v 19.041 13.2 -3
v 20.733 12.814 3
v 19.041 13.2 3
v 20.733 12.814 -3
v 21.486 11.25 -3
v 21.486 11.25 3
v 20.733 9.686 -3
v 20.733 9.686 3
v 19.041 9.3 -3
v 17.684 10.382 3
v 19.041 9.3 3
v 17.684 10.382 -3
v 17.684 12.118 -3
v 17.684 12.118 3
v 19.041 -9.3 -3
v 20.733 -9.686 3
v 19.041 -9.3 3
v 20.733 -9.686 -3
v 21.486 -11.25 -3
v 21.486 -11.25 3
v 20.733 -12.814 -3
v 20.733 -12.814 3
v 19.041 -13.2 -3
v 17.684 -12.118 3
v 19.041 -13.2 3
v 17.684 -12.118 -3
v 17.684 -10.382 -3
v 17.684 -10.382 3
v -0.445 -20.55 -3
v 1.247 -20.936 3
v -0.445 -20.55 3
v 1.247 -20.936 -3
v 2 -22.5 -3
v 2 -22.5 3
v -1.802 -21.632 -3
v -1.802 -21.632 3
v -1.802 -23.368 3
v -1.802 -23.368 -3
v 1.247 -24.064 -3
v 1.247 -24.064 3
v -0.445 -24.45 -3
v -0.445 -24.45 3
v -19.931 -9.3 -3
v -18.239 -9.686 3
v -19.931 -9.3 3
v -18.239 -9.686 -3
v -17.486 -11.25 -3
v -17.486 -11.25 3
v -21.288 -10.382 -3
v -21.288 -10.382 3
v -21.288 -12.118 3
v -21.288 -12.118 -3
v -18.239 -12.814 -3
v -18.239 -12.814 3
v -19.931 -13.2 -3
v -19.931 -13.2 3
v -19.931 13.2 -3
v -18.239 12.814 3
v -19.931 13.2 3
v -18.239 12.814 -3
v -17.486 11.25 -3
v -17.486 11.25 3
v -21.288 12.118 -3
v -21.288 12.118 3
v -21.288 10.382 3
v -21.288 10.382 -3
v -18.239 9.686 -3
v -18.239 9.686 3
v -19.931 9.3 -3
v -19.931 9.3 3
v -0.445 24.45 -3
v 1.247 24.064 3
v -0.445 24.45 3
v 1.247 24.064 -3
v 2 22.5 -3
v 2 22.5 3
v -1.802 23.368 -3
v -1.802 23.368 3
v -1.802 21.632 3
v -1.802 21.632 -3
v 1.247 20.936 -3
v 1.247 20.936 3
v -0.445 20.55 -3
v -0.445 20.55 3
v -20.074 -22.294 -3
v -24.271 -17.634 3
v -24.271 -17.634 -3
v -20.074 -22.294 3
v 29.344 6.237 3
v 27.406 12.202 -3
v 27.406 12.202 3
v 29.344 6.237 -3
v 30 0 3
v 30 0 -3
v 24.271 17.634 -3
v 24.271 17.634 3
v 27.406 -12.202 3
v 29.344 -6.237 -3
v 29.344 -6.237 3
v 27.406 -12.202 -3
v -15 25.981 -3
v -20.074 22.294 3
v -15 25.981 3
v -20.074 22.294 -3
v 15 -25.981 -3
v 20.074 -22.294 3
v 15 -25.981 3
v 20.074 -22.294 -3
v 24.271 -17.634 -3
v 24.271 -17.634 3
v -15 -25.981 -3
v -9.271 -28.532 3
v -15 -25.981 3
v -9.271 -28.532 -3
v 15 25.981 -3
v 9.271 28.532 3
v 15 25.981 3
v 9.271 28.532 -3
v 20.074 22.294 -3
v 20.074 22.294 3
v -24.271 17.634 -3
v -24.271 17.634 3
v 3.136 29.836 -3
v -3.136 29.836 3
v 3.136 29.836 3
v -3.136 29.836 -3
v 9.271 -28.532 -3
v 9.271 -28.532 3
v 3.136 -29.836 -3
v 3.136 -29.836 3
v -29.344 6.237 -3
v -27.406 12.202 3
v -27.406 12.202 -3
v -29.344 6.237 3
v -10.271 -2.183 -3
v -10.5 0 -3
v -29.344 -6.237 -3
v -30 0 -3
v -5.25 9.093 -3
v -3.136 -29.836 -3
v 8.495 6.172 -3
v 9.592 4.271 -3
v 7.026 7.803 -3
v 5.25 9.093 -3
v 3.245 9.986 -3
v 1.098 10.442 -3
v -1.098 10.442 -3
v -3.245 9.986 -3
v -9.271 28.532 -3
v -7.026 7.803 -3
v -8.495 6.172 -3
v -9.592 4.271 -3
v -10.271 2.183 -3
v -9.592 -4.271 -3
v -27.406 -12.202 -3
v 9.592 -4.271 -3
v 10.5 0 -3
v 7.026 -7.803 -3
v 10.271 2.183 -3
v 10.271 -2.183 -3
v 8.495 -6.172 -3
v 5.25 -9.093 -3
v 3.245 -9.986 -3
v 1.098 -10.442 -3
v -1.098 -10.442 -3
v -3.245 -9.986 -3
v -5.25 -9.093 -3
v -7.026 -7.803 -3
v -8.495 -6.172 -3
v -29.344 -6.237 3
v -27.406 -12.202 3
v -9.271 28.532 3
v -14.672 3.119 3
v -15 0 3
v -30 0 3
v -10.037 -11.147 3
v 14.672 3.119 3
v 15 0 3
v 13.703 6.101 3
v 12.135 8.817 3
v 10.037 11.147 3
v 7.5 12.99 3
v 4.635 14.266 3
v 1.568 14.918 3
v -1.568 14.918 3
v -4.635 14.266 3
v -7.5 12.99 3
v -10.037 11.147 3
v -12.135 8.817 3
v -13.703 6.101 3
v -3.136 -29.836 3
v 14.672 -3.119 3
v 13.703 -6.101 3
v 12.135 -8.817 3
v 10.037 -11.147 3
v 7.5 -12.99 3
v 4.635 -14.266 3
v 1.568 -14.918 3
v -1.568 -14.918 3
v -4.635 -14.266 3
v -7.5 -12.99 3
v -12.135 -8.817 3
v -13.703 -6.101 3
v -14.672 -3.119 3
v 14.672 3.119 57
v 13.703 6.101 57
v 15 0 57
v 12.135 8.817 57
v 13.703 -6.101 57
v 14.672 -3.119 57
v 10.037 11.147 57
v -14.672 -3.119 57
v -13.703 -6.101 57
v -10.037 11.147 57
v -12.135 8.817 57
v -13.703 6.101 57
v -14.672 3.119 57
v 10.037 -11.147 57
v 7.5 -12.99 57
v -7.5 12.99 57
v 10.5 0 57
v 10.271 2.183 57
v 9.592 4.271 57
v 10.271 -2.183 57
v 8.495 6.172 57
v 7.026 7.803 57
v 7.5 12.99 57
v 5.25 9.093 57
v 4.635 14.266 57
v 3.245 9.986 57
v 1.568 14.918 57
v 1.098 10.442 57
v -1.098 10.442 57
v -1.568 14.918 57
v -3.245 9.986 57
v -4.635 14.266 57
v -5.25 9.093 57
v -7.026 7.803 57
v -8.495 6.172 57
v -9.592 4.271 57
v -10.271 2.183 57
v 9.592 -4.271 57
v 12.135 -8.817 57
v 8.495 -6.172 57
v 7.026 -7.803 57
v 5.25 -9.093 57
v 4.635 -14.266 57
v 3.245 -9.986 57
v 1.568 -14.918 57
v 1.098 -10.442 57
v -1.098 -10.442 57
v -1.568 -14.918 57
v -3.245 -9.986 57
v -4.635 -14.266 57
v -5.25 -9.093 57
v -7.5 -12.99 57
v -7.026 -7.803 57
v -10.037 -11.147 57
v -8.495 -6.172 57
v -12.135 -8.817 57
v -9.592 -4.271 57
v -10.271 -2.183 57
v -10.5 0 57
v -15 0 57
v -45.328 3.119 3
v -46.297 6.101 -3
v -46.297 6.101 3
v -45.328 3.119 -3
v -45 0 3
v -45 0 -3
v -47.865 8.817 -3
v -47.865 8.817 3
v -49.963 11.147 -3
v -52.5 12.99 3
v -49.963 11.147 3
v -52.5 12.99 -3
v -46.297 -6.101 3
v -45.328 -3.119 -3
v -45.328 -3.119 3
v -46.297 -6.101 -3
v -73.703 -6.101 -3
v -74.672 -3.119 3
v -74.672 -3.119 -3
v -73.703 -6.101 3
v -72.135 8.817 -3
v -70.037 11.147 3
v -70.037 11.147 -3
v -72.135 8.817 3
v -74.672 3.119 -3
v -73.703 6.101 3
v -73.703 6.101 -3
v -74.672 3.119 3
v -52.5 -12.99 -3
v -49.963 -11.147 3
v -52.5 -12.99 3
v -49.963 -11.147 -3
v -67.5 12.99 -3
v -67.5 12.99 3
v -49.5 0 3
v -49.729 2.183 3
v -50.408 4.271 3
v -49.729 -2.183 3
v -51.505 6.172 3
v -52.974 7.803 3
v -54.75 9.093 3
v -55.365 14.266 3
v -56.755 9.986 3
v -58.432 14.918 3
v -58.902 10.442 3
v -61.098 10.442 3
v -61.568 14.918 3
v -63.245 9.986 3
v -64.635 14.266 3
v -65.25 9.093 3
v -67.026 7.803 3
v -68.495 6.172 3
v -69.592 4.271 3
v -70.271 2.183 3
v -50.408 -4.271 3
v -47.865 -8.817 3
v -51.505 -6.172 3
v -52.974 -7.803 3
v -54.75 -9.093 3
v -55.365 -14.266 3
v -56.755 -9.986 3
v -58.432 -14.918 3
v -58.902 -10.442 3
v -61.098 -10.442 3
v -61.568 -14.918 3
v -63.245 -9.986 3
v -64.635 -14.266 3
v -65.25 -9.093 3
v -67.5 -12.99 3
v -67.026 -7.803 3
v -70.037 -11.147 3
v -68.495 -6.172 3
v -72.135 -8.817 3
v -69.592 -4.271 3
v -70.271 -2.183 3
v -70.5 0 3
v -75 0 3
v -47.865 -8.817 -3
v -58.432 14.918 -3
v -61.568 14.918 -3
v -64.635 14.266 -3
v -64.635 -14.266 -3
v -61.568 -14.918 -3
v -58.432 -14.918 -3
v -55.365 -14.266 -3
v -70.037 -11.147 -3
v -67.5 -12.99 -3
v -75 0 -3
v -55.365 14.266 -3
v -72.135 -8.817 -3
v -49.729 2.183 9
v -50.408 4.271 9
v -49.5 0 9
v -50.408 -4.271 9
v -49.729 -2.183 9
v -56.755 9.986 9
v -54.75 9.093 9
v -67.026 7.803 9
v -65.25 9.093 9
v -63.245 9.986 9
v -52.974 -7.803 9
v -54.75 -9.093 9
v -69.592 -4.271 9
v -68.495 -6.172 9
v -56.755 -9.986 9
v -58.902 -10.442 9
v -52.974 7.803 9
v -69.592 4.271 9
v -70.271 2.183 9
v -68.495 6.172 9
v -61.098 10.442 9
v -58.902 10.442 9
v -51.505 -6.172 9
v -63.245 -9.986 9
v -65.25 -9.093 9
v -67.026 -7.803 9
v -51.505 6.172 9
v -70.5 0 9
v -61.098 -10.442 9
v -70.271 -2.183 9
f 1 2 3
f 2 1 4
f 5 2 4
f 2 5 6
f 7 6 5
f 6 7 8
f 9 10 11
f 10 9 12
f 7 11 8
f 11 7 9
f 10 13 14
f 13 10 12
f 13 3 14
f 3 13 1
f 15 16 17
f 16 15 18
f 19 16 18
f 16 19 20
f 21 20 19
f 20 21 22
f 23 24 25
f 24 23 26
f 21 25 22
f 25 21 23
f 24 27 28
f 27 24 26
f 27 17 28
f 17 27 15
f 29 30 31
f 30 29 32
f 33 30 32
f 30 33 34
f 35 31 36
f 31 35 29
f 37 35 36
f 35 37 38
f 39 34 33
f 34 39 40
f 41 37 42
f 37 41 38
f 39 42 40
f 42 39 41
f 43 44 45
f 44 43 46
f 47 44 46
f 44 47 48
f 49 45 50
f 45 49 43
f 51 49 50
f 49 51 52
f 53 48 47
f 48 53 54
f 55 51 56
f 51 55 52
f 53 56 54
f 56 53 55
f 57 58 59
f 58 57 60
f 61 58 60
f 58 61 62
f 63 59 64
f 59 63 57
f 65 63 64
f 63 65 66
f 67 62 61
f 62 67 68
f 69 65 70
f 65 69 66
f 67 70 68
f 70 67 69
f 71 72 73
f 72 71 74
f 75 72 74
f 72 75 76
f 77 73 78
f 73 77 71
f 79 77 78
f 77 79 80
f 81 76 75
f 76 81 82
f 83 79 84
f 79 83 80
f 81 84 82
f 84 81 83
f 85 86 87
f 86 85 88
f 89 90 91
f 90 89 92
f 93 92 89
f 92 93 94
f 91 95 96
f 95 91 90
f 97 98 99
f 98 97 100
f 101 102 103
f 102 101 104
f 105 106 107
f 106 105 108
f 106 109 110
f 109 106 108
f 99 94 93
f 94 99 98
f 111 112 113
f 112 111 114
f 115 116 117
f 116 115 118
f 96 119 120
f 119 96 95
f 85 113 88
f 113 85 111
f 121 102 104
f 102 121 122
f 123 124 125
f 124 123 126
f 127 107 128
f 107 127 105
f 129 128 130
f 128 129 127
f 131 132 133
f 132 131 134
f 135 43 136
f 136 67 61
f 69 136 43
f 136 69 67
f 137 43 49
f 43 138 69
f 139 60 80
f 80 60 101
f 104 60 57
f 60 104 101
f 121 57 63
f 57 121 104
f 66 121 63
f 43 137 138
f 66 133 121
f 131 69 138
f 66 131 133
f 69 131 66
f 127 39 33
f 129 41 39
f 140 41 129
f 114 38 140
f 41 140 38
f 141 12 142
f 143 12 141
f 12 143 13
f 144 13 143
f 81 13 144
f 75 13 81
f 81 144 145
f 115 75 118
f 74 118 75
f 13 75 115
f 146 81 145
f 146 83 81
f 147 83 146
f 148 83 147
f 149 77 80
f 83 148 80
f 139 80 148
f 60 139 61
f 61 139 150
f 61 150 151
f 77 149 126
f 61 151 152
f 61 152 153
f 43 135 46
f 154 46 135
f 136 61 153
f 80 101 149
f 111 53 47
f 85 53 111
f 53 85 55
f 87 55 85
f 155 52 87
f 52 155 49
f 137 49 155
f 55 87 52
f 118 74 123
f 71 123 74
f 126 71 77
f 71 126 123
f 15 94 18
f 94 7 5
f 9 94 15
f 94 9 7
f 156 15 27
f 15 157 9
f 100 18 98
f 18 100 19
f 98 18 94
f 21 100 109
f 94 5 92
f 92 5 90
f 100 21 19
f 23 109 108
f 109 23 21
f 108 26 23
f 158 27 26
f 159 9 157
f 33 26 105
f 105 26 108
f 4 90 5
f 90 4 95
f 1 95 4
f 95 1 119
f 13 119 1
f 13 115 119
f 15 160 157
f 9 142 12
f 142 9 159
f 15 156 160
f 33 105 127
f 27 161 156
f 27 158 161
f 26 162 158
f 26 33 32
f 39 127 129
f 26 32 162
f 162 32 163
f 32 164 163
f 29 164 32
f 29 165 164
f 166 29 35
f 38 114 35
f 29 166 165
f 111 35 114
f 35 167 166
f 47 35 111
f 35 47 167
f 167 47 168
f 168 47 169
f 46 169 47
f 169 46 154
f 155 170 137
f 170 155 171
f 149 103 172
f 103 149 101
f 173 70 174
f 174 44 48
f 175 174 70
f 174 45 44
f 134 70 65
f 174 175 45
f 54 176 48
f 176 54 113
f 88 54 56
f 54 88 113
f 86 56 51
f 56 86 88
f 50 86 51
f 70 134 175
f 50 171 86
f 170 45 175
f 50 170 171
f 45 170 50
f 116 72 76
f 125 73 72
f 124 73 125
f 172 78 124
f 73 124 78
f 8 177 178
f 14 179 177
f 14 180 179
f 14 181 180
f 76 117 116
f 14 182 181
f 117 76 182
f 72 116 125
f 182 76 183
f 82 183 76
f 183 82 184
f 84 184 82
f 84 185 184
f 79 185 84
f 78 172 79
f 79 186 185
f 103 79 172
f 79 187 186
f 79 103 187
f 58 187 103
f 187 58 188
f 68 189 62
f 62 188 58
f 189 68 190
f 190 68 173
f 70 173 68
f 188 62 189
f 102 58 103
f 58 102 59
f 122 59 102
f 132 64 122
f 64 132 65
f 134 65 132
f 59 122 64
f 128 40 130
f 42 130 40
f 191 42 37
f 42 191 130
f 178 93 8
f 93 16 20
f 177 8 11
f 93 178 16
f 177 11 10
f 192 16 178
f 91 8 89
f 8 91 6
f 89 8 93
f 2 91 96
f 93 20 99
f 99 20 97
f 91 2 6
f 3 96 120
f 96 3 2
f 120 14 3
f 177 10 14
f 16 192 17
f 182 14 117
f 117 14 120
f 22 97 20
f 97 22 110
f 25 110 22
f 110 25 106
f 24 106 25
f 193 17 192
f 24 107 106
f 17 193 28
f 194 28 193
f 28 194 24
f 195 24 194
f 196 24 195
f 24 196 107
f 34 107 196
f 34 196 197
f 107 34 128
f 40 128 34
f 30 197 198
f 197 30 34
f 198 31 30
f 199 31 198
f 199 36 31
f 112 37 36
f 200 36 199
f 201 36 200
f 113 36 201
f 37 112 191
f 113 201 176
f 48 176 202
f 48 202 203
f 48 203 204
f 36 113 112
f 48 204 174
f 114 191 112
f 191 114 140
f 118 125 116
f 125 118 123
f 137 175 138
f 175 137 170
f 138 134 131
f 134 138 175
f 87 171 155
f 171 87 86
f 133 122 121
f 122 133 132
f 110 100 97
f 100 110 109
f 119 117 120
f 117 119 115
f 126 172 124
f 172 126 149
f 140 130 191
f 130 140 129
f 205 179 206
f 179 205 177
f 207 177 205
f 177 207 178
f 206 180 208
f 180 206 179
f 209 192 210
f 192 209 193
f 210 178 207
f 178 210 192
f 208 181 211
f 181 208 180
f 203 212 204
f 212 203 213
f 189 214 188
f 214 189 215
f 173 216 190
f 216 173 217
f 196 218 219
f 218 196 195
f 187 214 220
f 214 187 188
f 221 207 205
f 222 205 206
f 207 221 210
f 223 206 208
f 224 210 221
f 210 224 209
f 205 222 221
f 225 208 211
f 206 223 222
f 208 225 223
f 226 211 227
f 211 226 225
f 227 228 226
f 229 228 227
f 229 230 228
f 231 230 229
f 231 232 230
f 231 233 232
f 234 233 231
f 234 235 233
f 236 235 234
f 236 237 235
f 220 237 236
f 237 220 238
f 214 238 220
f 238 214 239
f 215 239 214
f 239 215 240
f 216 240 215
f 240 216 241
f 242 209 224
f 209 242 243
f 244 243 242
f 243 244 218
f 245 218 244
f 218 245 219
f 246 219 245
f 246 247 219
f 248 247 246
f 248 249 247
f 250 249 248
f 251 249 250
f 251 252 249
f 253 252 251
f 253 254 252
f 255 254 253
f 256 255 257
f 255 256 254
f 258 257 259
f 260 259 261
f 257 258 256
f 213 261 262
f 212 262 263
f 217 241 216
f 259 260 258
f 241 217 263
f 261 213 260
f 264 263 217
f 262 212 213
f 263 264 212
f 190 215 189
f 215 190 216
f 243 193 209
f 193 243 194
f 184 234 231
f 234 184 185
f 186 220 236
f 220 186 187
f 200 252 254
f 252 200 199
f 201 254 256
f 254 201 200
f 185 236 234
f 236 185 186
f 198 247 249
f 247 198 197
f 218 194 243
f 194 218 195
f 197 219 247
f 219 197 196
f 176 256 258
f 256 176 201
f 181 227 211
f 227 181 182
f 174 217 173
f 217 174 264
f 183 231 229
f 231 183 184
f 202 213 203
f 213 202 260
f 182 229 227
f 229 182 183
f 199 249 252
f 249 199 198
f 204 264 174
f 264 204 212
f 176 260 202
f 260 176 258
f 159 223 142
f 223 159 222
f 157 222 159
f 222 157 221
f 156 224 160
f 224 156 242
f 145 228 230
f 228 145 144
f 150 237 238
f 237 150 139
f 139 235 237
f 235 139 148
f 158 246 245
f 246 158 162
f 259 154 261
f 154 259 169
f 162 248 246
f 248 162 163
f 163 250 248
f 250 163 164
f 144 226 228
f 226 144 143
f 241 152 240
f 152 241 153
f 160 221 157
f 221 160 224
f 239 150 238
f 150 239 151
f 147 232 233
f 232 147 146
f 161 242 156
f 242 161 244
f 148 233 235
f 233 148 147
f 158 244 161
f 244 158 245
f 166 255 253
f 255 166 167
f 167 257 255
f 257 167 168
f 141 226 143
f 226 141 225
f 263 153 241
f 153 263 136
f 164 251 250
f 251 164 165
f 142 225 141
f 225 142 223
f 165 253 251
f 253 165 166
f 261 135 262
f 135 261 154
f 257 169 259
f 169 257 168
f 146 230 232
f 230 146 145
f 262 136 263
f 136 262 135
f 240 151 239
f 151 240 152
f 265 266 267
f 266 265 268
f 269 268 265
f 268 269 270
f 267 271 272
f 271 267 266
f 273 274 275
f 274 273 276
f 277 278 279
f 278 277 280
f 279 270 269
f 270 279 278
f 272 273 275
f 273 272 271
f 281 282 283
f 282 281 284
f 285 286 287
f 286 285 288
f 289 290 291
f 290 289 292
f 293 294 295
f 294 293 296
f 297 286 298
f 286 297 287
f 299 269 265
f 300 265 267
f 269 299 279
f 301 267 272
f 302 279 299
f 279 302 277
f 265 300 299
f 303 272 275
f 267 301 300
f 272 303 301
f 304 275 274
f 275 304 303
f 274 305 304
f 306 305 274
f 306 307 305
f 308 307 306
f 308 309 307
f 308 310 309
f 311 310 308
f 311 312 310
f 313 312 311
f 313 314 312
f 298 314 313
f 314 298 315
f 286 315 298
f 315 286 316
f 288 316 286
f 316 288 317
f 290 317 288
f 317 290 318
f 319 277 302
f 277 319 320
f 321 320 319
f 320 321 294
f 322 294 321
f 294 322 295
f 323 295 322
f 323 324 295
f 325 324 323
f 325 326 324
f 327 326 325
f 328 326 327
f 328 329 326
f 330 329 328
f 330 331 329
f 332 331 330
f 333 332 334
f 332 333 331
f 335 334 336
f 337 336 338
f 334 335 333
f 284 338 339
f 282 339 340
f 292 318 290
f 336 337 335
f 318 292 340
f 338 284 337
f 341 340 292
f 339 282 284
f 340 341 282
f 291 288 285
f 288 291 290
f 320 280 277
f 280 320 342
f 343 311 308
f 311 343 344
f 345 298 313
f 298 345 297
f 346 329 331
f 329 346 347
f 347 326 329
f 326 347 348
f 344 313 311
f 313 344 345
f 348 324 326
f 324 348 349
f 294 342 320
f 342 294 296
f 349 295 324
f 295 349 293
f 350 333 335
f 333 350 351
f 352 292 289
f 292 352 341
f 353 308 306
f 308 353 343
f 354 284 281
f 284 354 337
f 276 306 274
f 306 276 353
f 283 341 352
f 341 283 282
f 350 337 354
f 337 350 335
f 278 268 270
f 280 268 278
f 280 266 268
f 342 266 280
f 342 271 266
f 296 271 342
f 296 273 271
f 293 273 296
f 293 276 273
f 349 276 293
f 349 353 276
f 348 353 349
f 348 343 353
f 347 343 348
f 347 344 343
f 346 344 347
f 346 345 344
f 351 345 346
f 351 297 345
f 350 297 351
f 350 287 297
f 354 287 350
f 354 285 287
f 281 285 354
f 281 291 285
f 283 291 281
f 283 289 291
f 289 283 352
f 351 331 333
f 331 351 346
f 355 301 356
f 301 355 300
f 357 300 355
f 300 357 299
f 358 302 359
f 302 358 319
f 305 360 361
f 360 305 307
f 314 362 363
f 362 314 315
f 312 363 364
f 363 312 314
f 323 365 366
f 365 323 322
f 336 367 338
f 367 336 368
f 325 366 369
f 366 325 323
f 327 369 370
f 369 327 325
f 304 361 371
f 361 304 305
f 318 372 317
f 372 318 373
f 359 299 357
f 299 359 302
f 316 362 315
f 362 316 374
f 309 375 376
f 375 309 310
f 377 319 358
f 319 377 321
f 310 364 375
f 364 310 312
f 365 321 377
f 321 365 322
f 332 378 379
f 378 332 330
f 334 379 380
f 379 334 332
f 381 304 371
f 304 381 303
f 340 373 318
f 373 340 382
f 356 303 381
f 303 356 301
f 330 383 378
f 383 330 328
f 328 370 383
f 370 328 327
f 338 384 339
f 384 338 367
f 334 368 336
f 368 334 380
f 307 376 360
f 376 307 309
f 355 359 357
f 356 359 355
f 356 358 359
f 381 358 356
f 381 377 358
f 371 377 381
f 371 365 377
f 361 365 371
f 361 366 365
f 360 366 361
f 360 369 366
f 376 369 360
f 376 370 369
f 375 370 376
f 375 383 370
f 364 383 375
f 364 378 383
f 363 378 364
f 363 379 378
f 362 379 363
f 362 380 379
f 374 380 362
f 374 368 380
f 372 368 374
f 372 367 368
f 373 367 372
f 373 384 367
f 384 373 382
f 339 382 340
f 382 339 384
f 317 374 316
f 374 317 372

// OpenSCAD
mast_diameter = 21;
hole_diameter = 30;
plate_height = 6;
plate_diameter = 60;
adapter_height = 60;
screw_center = 22.5;
screw_hole = 4;

difference() {
    cylinder(plate_height, plate_diameter/2, plate_diameter/2, true);
    cylinder(plate_height+2, (hole_diameter/2)-2, (hole_diameter/2)-2, true);
    
//    translate([0, screw_center, 0])
//    cylinder(plate_height+2, screw_hole/2, screw_hole/2, true);
//    translate([screw_center, 0, 0])
//    cylinder(plate_height+2, screw_hole/2, screw_hole/2, true);
//    translate([0, -screw_center, 0])
//    cylinder(plate_height+2, screw_hole/2, screw_hole/2, true);
//    translate([-screw_center, 0, 0])
//    cylinder(plate_height+2, screw_hole/2, screw_hole/2, true);

    for(sextant=[1:6]) {
        a = 60 * sextant;
        
        x = screw_center * sin(a);
        y = screw_center * cos(a);

        translate([x, y, 0])
            cylinder(plate_height+2, screw_hole/2, screw_hole/2, true);
    }
}

translate([0, 0, (adapter_height/2) - (plate_height/2)])
difference() {
    cylinder(adapter_height, hole_diameter/2, hole_diameter/2, true);
    cylinder(adapter_height+2, mast_diameter/2, mast_diameter/2, true);
}

//translate([0, 0, adapter_height*1.1])
//difference() {
//    cylinder(20, hole_diameter/2, mast_diameter/2, true);
//    cylinder(22, mast_diameter/2, mast_diameter*0.35, true);
//}

translate([-60, 0, 0]) {
cylinder(plate_height, hole_diameter/2, hole_diameter/2, true);
    translate([0, 0, plate_height])
    cylinder(plate_height, mast_diameter/2, mast_diameter/2, true);
}
